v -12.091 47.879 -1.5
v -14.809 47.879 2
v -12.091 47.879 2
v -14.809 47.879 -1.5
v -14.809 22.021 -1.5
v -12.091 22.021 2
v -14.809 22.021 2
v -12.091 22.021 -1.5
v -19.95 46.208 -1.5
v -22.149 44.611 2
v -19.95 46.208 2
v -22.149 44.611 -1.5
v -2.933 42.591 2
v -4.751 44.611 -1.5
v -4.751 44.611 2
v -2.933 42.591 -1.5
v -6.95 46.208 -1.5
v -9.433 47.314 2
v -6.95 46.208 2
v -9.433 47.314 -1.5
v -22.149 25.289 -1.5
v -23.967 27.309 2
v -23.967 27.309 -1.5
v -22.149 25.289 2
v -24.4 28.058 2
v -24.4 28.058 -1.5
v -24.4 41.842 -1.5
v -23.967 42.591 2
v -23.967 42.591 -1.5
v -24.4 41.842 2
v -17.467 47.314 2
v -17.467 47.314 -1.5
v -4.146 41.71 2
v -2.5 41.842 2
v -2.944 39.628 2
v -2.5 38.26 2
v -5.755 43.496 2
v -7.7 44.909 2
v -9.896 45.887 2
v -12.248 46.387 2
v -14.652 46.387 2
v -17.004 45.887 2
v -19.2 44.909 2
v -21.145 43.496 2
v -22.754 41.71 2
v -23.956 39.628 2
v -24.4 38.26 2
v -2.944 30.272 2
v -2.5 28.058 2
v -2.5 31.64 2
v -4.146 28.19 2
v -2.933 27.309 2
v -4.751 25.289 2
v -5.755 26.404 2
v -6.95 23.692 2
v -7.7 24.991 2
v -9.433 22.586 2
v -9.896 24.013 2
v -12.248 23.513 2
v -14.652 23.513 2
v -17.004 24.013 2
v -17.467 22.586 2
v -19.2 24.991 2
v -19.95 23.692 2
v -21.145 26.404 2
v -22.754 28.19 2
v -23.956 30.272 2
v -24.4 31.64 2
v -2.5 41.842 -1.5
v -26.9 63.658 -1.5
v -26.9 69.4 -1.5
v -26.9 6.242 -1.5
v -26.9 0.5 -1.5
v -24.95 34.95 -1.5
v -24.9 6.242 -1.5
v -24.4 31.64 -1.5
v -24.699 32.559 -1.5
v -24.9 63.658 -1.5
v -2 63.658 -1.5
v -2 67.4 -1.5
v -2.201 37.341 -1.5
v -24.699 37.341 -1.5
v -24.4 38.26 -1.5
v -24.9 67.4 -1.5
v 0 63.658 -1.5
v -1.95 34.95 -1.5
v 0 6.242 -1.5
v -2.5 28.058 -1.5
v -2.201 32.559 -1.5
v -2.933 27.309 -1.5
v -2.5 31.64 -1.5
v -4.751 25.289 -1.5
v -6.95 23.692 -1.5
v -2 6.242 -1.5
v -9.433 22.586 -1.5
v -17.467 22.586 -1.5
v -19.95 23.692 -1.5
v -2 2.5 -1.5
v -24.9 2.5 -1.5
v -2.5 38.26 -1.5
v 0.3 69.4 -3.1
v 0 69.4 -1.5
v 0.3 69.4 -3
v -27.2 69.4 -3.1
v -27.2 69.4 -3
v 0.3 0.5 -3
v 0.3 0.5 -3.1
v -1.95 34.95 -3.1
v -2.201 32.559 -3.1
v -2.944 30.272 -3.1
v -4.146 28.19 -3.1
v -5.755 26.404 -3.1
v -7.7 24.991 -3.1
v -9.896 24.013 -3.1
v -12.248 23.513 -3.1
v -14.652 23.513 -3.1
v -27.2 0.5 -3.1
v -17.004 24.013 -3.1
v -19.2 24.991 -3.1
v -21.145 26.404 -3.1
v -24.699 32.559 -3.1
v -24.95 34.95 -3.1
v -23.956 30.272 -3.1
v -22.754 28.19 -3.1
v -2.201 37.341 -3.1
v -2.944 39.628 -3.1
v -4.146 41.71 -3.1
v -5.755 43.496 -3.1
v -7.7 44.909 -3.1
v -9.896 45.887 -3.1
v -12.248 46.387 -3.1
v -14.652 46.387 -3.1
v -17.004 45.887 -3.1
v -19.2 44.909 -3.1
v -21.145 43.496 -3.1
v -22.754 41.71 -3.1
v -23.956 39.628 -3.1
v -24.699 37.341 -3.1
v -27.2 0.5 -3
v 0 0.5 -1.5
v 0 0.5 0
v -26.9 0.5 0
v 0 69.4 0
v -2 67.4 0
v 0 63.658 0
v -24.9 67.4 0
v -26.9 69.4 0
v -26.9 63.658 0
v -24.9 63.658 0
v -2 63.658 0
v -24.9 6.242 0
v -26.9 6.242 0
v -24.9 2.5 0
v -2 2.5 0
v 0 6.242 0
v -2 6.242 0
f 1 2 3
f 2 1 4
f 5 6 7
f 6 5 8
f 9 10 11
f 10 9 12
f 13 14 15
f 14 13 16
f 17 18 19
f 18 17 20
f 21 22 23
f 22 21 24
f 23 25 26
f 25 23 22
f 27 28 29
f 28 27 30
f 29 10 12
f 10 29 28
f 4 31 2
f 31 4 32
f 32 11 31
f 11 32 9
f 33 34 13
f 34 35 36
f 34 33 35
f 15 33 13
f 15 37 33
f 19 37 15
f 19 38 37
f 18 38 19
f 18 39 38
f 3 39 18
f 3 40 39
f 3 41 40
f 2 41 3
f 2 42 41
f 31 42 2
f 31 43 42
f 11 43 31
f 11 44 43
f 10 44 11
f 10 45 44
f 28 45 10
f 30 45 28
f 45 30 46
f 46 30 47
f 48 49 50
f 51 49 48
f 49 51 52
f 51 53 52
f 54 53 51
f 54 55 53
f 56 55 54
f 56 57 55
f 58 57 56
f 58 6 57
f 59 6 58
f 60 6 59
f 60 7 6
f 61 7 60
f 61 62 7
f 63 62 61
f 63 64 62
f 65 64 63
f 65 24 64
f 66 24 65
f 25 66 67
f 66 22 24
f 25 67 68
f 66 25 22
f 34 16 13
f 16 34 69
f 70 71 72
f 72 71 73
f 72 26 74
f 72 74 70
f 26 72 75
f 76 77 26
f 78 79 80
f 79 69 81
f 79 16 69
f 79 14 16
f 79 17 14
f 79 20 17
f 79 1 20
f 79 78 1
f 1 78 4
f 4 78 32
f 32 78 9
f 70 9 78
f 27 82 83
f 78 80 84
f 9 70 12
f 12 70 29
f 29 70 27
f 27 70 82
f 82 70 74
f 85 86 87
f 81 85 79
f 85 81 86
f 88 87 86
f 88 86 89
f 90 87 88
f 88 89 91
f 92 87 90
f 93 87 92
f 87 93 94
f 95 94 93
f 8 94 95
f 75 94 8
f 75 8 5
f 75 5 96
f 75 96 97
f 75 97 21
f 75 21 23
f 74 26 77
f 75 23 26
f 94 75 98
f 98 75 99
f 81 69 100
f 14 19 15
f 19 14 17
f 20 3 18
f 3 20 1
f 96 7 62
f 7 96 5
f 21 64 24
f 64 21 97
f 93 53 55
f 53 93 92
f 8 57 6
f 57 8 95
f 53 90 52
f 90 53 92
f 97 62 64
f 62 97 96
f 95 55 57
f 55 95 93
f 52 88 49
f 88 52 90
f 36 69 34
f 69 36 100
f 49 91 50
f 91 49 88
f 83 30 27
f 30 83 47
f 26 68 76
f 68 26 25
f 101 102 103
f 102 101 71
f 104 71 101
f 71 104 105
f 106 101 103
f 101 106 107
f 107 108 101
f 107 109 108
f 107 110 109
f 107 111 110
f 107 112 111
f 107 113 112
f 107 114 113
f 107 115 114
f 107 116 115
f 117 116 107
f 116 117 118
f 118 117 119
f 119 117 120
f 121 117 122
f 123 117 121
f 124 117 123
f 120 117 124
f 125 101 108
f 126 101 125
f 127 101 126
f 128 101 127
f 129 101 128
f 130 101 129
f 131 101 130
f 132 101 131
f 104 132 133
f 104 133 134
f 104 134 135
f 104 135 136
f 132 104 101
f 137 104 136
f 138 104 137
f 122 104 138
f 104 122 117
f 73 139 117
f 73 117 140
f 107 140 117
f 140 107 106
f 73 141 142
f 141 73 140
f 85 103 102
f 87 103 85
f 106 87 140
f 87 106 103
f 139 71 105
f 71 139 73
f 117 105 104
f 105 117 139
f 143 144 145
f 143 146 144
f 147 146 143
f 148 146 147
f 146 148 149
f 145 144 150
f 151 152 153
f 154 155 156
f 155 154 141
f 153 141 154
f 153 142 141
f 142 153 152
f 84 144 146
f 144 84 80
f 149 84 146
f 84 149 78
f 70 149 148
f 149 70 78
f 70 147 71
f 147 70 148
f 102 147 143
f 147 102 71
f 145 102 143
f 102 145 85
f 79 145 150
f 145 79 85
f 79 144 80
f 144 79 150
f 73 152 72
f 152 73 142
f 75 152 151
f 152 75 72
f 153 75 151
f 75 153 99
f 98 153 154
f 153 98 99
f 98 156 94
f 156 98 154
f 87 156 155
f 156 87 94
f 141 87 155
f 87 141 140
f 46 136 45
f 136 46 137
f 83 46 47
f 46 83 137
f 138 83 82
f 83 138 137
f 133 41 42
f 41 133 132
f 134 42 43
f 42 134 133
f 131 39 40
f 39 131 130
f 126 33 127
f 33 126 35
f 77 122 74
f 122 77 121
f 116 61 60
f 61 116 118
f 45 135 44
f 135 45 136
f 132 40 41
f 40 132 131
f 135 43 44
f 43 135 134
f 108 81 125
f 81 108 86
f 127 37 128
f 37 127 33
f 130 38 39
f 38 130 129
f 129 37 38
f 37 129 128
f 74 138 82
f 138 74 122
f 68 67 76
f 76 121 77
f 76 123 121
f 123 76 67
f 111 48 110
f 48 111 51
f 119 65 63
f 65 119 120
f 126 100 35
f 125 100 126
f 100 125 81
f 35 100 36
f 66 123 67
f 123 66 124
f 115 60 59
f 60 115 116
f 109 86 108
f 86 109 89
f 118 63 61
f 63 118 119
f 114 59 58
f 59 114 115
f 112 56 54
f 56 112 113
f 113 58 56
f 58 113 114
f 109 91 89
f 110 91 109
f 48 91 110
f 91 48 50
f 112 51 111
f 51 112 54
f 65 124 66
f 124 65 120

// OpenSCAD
/* Diffuser Lense For A Particular Project (OpenSCAD) */
tol = 0.1;

/* LED PCB */
holedia   = 16;

/* Diffuser spec */
thickness = 1.5;
standoff = 1.5;
holediffuser = holedia+7;

/* Camera Chamber */
camchamberw_org = 27;
camchamberh_org = 70;

camchamberw = camchamberw_org - tol;
camchamberh = camchamberh_org - tol -1;



/* Enclosure hole */
enclosurew = 19;

rotate([0,180])
{

/* Diffuser */
translate([0, 1/2, 0])
difference()
{
  union()
  {

    // Diffuser Body
    translate([0, 0, standoff])
    {
      hull()
      {
        translate([0, 0, 0])
          cube([camchamberw,camchamberh,0.1], center = false);
        translate([-0.6/2, 0, thickness])
          cube([camchamberw+0.6,camchamberh,0.1], center = false);
      }
    }
    
    // Standoff
    linear_extrude(height = standoff) 
    {
       difference() 
      {
       offset(r = 0) 
        square(size = [camchamberw,camchamberh], center = false);
       offset(r = -2) 
        square(size = [camchamberw,camchamberh], center = false);
       translate([camchamberw/2, camchamberh/2, 0])
        square(size = [camchamberw,camchamberh*5/6], center = true);
      }
    }
    difference()
    {
      translate([camchamberw/2,camchamberh/2,-2])
        cylinder(standoff+2,d=holediffuser+3);
      translate([0,0,-3])
        linear_extrude(height = standoff+3)
        {
          difference() 
          {
           offset(r = 0) 
            square(size = [camchamberw,camchamberh], center = false);
           offset(r = -2.5) 
            square(size = [camchamberw,camchamberh], center = false);
          }
        }
    }
  }
  translate([camchamberw/2,camchamberh/2,-thickness/2-2])
    cylinder((standoff+thickness+2)*2,d=holediffuser);
}

/* Camera Frame Model */
%translate([-tol/2,-tol/2,-2])
union()
{
  %linear_extrude(height = 2) 
  {
     difference() 
    {
       offset(r = 0) 
        square(size = [camchamberw_org,camchamberh_org], center = false);
       offset(r = -2) 
        square(size = [camchamberw_org,camchamberh_org], center = false);
     }
  }
  %translate([camchamberw_org/2,camchamberh_org/2,-thickness/2])
     cylinder(thickness,d=holedia);
}

}
